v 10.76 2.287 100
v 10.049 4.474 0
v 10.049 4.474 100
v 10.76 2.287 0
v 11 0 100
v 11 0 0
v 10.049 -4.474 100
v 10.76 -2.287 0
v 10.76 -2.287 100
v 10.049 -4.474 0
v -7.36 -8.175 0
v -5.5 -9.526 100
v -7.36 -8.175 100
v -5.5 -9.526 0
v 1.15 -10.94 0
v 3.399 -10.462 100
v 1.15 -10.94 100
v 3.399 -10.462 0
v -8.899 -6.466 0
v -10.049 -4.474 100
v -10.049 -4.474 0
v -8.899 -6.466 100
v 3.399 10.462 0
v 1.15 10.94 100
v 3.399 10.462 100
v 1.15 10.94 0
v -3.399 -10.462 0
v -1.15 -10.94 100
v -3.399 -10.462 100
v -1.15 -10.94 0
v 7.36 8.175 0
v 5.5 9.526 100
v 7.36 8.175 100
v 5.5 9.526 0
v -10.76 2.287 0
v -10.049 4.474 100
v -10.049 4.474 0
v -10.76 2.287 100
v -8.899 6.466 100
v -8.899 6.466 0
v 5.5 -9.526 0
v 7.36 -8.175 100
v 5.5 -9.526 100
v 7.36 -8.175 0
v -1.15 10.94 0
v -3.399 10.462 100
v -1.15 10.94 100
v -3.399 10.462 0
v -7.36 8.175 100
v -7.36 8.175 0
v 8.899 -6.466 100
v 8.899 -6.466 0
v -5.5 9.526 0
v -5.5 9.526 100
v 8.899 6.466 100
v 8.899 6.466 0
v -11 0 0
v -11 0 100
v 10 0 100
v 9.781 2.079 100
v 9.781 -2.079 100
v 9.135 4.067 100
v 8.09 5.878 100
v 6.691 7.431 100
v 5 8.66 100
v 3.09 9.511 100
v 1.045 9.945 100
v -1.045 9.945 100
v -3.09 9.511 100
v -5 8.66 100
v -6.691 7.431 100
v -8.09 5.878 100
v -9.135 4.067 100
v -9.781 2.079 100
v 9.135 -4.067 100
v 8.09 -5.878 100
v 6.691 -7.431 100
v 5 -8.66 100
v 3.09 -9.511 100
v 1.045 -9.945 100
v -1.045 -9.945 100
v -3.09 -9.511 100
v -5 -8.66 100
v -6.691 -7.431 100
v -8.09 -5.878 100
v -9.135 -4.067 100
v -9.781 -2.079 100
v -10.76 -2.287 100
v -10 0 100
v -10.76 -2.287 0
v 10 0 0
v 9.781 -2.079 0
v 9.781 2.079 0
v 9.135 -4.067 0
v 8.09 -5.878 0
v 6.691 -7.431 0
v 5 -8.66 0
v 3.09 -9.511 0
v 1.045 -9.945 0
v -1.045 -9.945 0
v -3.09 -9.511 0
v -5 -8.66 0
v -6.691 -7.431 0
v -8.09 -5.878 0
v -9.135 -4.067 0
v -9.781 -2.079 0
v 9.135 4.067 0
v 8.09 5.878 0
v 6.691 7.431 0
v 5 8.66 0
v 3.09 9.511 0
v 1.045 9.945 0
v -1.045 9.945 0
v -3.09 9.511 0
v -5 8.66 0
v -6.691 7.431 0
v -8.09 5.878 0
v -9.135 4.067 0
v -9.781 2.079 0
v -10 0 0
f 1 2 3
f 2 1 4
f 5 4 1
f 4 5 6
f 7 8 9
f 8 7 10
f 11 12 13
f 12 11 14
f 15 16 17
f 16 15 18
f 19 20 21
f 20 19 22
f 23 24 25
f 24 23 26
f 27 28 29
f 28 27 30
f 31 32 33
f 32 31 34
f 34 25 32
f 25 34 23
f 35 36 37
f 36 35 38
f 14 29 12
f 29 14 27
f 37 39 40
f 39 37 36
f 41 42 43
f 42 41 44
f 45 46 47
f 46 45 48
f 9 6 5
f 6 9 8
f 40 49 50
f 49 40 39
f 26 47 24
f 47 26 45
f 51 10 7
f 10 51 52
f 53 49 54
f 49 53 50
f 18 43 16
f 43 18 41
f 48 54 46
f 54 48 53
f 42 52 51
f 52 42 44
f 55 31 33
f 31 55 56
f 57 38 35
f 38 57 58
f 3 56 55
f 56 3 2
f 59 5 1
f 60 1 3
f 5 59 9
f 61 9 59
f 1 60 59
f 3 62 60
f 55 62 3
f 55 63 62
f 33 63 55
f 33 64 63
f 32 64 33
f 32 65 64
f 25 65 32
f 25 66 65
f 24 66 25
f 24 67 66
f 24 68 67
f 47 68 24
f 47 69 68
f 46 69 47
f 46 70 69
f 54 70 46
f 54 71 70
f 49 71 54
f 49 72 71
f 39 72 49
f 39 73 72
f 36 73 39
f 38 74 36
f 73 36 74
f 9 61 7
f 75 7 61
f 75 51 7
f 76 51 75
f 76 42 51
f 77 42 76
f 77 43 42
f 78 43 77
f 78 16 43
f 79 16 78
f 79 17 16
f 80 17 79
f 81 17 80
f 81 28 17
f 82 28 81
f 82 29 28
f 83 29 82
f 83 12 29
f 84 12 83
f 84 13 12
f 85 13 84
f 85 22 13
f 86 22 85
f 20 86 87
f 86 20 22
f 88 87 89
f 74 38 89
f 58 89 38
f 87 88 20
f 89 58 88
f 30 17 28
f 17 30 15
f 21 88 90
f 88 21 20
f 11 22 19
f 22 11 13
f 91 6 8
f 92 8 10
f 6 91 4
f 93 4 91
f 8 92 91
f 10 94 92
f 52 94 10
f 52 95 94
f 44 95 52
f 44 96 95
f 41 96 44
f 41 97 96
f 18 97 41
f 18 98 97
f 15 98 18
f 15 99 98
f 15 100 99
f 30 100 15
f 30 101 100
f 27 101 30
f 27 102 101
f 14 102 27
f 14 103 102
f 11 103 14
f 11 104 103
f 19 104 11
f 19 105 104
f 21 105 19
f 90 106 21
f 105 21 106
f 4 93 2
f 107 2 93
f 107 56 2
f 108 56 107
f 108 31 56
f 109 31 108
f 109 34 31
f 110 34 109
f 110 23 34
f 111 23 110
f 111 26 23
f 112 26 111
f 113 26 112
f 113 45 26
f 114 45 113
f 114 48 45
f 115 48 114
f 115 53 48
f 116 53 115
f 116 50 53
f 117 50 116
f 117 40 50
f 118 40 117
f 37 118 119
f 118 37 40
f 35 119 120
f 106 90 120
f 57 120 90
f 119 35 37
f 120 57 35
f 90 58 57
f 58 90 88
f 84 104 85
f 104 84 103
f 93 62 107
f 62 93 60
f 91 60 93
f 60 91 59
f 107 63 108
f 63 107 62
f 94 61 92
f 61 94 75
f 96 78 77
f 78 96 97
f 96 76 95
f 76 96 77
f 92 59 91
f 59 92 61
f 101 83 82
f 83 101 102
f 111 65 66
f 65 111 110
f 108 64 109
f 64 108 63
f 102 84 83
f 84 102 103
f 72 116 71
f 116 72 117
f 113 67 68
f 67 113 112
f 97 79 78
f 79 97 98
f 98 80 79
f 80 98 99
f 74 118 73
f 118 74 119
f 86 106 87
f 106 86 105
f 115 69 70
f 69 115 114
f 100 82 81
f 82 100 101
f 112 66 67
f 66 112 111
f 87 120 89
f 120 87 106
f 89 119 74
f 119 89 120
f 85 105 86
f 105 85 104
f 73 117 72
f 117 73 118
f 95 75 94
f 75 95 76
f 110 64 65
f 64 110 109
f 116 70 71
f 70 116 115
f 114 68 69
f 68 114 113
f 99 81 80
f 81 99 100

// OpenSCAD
difference(){
    cylinder(100,11,11);
    translate([0,0,-0.5])    
    cylinder(101,10,10);
}
